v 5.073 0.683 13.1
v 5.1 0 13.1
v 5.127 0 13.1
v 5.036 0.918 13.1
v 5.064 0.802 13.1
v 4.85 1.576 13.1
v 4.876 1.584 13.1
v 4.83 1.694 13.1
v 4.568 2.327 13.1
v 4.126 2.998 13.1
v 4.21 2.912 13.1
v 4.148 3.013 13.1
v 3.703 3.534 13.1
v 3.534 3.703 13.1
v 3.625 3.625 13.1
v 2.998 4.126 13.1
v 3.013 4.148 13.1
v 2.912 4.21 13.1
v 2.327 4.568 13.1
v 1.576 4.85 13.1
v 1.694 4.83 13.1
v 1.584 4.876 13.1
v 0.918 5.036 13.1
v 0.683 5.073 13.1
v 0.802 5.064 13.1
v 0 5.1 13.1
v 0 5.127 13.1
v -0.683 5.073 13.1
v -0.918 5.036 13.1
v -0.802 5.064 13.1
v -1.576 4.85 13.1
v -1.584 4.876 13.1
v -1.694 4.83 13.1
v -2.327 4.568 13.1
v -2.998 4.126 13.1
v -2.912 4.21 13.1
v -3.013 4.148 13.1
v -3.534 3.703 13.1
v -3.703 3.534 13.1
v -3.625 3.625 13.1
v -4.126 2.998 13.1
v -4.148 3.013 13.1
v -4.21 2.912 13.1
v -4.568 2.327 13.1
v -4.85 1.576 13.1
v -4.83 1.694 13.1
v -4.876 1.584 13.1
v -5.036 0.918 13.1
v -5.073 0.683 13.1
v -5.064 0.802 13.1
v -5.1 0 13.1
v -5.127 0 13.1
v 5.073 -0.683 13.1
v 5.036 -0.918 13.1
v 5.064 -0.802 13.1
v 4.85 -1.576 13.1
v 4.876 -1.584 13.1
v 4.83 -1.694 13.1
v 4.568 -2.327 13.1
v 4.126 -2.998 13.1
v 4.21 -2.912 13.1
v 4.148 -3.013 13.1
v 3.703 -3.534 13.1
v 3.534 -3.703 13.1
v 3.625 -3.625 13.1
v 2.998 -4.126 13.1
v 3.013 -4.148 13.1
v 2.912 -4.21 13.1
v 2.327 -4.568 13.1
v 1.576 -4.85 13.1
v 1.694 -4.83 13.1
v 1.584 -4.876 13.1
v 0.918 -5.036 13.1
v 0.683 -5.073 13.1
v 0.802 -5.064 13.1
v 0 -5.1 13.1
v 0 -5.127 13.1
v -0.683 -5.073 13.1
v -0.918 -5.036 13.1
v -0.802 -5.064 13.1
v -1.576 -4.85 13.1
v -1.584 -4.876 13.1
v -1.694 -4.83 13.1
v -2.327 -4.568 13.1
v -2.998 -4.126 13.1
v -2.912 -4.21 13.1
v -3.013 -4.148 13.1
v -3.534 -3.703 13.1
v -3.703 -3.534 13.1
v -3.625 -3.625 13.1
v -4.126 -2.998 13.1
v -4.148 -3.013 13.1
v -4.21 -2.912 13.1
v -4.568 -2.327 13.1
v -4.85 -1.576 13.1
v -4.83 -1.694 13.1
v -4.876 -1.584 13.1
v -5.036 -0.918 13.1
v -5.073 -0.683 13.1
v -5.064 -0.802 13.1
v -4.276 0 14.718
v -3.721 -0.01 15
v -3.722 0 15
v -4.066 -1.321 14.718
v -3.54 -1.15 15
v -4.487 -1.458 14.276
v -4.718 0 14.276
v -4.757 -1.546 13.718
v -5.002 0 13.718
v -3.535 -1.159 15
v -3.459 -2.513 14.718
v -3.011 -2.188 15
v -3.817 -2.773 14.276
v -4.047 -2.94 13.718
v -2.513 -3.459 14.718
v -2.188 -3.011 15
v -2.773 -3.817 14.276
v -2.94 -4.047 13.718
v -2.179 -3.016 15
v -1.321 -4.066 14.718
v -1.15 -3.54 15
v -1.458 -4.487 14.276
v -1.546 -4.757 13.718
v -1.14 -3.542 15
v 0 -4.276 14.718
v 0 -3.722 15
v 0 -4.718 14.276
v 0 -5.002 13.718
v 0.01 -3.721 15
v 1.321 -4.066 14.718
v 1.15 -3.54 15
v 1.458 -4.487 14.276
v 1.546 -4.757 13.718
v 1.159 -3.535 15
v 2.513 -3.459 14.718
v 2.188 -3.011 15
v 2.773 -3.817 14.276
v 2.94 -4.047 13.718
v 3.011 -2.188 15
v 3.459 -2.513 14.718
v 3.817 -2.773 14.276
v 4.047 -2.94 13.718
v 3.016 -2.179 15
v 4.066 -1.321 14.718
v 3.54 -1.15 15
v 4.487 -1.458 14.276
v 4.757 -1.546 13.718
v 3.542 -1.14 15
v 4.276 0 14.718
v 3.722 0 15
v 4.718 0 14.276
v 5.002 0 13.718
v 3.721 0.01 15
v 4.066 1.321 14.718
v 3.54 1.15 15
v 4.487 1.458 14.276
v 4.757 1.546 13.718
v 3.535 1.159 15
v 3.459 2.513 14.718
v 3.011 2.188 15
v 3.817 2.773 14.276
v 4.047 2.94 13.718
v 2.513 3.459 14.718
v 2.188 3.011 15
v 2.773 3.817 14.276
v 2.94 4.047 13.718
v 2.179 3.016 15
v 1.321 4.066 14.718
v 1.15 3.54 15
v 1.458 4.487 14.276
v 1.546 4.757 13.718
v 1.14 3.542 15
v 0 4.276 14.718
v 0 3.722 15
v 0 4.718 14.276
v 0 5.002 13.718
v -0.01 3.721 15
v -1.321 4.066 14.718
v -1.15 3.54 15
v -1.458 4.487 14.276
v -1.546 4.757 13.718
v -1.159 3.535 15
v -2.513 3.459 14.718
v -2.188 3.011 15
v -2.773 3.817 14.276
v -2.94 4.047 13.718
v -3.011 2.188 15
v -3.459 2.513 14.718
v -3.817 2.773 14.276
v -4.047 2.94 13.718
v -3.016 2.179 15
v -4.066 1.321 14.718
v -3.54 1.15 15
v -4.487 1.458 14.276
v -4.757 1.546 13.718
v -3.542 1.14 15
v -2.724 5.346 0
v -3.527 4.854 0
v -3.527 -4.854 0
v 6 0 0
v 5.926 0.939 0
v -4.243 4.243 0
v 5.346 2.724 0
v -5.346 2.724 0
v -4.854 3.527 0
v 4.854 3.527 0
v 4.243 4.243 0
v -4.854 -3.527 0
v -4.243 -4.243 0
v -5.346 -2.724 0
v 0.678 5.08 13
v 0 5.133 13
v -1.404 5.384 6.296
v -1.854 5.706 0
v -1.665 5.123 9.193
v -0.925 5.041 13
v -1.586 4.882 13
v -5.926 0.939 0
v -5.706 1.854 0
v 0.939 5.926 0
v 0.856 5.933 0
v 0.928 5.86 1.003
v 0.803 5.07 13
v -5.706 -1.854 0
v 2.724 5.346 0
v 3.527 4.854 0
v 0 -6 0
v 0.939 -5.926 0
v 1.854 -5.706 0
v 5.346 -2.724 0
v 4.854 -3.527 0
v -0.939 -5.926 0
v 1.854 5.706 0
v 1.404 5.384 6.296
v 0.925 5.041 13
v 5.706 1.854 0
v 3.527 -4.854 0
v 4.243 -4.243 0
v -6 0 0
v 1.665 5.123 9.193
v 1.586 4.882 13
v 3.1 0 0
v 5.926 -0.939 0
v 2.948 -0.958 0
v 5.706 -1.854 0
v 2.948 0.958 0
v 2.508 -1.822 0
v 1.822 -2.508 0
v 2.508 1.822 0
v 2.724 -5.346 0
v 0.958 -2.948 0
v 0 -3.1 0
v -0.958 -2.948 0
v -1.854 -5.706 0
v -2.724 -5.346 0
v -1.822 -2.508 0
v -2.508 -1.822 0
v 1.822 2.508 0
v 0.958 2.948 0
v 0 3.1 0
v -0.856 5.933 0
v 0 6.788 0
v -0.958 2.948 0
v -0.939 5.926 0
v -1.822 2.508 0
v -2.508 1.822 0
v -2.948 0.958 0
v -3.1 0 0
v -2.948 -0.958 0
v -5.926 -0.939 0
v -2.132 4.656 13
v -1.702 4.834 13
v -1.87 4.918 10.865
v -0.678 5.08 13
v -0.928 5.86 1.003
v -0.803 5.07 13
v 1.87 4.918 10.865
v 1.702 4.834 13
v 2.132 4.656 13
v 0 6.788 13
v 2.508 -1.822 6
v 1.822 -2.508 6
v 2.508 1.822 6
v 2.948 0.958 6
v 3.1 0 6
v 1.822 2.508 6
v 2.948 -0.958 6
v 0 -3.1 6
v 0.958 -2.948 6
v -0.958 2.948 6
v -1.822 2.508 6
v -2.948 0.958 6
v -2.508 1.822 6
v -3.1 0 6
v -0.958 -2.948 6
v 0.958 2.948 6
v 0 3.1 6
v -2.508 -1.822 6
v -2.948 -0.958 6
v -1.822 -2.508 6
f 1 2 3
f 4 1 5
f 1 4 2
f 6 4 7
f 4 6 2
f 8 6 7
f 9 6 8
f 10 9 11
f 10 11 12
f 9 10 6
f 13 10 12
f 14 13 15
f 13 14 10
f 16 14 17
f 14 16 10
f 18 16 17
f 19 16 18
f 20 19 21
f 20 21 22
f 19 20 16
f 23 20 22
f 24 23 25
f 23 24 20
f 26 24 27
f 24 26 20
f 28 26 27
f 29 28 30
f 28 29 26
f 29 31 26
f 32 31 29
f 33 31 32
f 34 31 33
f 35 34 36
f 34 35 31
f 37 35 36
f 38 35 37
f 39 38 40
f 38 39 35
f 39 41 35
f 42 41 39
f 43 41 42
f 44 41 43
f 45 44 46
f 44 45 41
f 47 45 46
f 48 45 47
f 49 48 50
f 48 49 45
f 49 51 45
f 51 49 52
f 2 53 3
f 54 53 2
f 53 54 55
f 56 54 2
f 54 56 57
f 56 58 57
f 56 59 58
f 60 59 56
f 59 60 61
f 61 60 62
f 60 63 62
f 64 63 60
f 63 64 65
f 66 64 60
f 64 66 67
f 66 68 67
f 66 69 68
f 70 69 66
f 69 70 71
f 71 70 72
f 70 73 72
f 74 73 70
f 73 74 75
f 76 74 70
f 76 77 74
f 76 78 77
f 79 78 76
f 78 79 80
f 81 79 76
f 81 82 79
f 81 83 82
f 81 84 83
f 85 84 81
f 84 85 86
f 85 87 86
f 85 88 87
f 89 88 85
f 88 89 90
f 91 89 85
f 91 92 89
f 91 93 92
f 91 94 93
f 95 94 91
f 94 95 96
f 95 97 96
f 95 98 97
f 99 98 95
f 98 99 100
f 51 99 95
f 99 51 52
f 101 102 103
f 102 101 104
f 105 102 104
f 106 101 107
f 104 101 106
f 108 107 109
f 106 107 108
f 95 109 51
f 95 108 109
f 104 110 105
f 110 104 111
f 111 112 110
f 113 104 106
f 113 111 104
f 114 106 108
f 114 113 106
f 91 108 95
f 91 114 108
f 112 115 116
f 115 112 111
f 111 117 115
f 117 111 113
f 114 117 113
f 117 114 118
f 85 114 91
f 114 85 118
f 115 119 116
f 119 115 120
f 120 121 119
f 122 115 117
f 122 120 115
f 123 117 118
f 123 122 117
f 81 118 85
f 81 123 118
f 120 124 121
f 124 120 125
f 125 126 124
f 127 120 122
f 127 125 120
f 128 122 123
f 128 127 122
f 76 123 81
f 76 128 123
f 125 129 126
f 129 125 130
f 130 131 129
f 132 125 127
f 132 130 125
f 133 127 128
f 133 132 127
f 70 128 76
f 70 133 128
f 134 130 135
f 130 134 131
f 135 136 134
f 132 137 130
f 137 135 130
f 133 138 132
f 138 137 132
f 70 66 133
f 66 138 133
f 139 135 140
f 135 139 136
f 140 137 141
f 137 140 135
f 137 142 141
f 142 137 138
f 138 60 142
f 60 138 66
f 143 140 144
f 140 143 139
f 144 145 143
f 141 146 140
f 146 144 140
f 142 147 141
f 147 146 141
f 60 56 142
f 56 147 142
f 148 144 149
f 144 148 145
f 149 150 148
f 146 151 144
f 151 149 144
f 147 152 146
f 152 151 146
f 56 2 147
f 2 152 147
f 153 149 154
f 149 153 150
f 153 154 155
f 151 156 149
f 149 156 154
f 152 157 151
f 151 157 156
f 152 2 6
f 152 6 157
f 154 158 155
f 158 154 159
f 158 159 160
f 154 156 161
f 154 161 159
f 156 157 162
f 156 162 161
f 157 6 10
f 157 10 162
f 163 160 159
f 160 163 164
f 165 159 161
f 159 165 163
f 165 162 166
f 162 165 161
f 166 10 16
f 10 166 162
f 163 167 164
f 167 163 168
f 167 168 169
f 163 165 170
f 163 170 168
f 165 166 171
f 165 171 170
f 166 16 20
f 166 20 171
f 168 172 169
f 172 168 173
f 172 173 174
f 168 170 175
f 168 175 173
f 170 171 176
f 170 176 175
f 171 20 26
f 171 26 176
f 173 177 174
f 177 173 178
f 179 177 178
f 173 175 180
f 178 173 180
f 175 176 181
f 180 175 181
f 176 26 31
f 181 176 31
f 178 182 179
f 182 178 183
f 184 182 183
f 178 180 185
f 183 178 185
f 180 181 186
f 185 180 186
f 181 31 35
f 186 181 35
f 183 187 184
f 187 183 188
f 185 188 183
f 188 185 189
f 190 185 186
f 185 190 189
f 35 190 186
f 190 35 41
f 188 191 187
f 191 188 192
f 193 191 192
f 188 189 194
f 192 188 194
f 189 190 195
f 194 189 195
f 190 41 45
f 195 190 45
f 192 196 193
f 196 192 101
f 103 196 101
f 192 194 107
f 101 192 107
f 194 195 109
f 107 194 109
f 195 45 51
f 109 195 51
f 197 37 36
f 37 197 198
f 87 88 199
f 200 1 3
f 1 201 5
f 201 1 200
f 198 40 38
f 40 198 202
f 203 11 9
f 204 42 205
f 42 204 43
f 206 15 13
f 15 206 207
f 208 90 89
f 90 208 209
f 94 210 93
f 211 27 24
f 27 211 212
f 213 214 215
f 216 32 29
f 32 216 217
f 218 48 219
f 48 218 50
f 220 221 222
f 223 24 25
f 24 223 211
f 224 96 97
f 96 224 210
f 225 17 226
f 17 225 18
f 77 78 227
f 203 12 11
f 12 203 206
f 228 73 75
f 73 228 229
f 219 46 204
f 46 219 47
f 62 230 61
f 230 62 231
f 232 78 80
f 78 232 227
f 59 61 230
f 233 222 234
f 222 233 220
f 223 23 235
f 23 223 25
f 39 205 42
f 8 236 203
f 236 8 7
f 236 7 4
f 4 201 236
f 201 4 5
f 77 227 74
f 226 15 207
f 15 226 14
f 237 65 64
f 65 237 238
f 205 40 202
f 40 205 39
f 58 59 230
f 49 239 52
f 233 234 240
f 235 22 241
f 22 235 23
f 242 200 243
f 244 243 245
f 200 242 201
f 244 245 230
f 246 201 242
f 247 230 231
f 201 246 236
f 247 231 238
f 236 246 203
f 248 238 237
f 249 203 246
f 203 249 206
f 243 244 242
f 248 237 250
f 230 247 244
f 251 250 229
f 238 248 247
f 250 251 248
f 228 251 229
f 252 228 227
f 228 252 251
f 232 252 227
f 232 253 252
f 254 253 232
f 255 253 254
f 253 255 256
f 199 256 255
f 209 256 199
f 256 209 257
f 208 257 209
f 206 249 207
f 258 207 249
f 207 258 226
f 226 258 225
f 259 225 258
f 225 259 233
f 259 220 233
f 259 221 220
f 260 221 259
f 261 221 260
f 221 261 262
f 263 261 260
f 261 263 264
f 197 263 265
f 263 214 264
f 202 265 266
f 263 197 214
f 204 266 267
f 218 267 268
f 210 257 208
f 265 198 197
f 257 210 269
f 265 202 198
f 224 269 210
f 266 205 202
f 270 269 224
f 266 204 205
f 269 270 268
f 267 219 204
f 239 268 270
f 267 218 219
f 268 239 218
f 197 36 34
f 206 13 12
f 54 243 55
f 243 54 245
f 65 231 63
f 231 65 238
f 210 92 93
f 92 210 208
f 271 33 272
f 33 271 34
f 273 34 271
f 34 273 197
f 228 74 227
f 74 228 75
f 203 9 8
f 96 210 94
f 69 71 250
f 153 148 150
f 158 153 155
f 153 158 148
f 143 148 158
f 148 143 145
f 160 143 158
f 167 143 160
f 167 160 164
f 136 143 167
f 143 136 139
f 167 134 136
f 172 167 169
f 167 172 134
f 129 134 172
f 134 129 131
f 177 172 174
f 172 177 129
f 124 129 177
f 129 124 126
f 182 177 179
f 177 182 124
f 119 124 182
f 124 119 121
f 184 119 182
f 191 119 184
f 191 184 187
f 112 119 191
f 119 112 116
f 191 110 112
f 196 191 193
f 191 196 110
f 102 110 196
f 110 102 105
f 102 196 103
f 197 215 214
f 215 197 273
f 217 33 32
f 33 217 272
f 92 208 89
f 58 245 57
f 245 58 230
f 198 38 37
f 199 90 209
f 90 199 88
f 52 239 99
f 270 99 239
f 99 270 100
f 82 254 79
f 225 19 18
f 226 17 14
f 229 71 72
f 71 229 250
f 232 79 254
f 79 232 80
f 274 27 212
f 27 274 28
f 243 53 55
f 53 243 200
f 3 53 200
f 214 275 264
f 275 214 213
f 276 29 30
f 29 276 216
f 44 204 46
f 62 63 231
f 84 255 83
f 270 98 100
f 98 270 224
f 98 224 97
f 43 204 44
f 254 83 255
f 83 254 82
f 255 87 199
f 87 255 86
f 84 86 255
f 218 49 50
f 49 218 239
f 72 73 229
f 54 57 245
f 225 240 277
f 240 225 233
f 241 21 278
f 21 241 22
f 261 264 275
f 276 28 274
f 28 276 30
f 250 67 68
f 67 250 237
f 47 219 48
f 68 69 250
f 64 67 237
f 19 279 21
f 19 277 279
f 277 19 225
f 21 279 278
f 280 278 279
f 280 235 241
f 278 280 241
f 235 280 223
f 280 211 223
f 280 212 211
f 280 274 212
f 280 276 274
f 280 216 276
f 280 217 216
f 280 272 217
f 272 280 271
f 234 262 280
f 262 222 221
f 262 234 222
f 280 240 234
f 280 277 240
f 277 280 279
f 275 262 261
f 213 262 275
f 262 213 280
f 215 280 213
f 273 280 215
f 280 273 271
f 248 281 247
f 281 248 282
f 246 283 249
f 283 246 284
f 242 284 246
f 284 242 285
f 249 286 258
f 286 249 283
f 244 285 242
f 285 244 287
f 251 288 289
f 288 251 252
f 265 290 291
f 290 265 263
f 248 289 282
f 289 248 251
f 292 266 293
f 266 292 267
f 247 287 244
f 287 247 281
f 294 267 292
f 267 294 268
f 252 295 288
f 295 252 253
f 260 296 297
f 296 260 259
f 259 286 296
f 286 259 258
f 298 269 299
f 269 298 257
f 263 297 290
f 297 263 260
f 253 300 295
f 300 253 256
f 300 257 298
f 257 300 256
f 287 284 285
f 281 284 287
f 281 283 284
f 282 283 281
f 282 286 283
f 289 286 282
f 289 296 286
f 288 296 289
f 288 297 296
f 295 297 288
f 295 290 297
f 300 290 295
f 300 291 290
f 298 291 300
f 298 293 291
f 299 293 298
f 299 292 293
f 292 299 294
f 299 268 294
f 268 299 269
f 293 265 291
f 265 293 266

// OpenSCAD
/*

Parametric Potentiometer Knob Generator
version 1.1
2012 Steve Cooley
http://sc-fa.com
http://beatseqr.com
http://hapticsynapses.com

parametric potentiometer knob generator by steve cooley is licensed under a Creative Commons Attribution-NonCommercial-ShareAlike 3.0 Unported License. Based on a work at sc-fa.com. Permissions beyond the scope of this license may be available at http://sc-fa.com/blog/contact.

view terms of the license here:
http://creativecommons.org/licenses/by-nc-sa/3.0/


version history
---------------
1.1 2012-04-12 fixed the arrow indicator code to be more robust and easier to adjust parameters for.
1.0 2012-03-?? initial release.


*/


//
//
// Physical attributes, basic
//
//

knob_radius_top = 5;
knob_radius_bottom = 6;
knob_height = 15;
knob_smoothness = 40;

shaft_radius = 3.1;
shaft_height = 7;
shaft_smoothness = 20;

shaft_is_flatted = false;
flat_size_adjustment = -0.0;
// you won't need to mess with this. less than 5 makes it disappear. you can, however,
// set the adjustment to be a negative decimal if you need a flat but not as big as the default.
// go positive if you need a bigger flat
flat_size = 5 + flat_size_adjustment;

// some potentiometers need to have their knobs affixed with a set screw.
set_screw = false;
set_screw_radius = 1.5;
set_screw_depth = 9;
set_screw_height = 4;
quality_of_set_screw = 20;

//
//
// Decorations
//
//

//
// top edge smoothing
// thanks to http://www.iheartrobotics.com/ for the articles!
//

smoothing = true;
smoothing_radius = 2;				// tweak on this one, how much smoothing to apply
smooth = 20;						// tweak on this one, Number of facets of rounding cylinder

ct = -0.1; 							// circle translate? not sure.
circle_radius = knob_radius_top;  	// just match the top edge radius
circle_height = 1; 					// actually.. I don't know what this does.
pad = 0.2;							// Padding to maintain manifold


//
// directional indicators
//

// this is a corner edge of a cube sticking out of the cylinder at the bottom
// you can use it instead of the arrow shaped cutout in the top if you like. Or both.

pointy_external_indicator = true;
pointy_external_indicator_height = 13;
pointy_external_indicator_pokey_outey_ness = 0.0; //
pokey_outey_value = pointy_external_indicator_pokey_outey_ness - 1 - pad;
pokey_outey = [pokey_outey_value, pokey_outey_value,0];

// there's an arrow shaped hole you can have. There aren't a lot of controls for this.
// please feel free to improve on this script here.

arrow_indicator = false;
arrow_indicator_scale = 0.4;
arrow_indicator_translate = [0,1,16];
arrow_scale_head = 2;
arrow_scale_shaft = 1.5;

//
// indentations
//

// for spherical indentations, set the quantity, quality, size, and adjust the placement
indentations_sphere = false;
sphere_number_of_indentations = 12;
sphere_quality_of_indentations = 4;
size_of_sphere_indentations = 4;
// the first number in this set moves the spheres in or out. smaller is closer to the middle
// the second number in this set moves the spheres left or right
// the third number in this set moves the speheres up or down
translation_of_sphere_indentations = [10,0,15];
// in case you are using an odd number of indentations, you way want to adjust the starting angle
// so that they align to the front or set screw locations.
sphere_starting_rotation = 90;

// for cylinder indentations, set quantity, quality, radius, height, and placement
indentations_cylinder = false;
cylinder_number_of_indentations = 10;
cylinder_quality_of_indentations = 50;
radius_of_cylinder_indentations_top = 3;
radius_of_cylinder_indentations_bottom = 5;
height_of_cylinder_indentations = 12;
translation_of_cylinder_indentations = [0,8,-8];
cylinder_starting_rotation = -33.3;

// these are some setup variables... you probably won't need to mess with them.
negative_knob_radius = knob_radius_bottom*-1;


// this is the main module. It calls the submodules.
make_the_knob();

module make_the_knob()
{
	difference()
		{
		difference()
			{

			difference()
				{
				difference()
					{

					union()
						{

						difference()
							{
							// main cylinder
							cylinder(r1=knob_radius_bottom,r2=knob_radius_top,h=knob_height, $fn=knob_smoothness);

							smoothing();

							}

						external_direction_indicator();
						}

					shaft_hole();
					}

				set_screw_hole();
				}

			arrow_indicator();
			indentations();
		}
	}

}

module smoothing() {

// smoothing the top
				if(smoothing == true)
					{
						translate([0,0,knob_height])
						rotate([180,0,0])
						difference() {
							rotate_extrude(convexity=10,  $fn = smooth)
							translate([circle_radius-ct-smoothing_radius+pad,ct-pad,0])
							square(smoothing_radius+pad,smoothing_radius+pad);

							rotate_extrude(convexity=10,  $fn = smooth)
							translate([circle_radius-ct-smoothing_radius,ct+smoothing_radius,0])
							circle(r=smoothing_radius,$fn=smooth);
							}
					}
}

module external_direction_indicator() {

				if(pointy_external_indicator == true)
						{


						// outer pointy indicator
						rotate([0,0,45])
						translate(pokey_outey)
						// cube size of 8 minimum to point out
						cube(size=[knob_radius_bottom,knob_radius_bottom,pointy_external_indicator_height],center=false);
						}

}

module shaft_hole() {
				// shaft hole
				difference()
					{

					// round shaft hole
					translate([ 0, 0, -1 ])
					cylinder(r=shaft_radius,h=shaft_height, $fn=shaft_smoothness);

					if(shaft_is_flatted == true)
						{
						// D shaft shape for shaft cutout
						rotate( [0,0,90])
						translate([-7.5,-5,0])
						cube(size=[flat_size,10,13],center=false);
						}
					}
}


module set_screw_hole() {

			if(set_screw == true)
				{
				// set screw hole
				rotate ([90,0,0])
				translate([ 0, set_screw_height, 1 ])
				cylinder(r=set_screw_radius,h=set_screw_depth, $fn=quality_of_set_screw);
				}
}

module arrow_indicator() {
		if(arrow_indicator == true)
			{
			translate(arrow_indicator_translate)
			// begin arrow top cutout
			// translate([(knob_radius/2),knob_height,knob_height])
			rotate([90,0,45])
			scale([arrow_indicator_scale*.3,arrow_indicator_scale*.3,arrow_indicator_scale*.3])
			union()
				{
				rotate([90,45,0])
				scale([arrow_scale_head,arrow_scale_head,1])
				cylinder(r=8, h=10, $fn=3, center=true);
				rotate([90,45,0])
				translate([-10,0,0])
				scale([arrow_scale_shaft,arrow_scale_shaft,1])
				cube(size=[15,10,10],center=true);
				}
			}
}

module indentations() {

if(indentations_sphere == true)
			{
			for (z = [0:sphere_number_of_indentations])
				{
				rotate([0,0,sphere_starting_rotation+((360/sphere_number_of_indentations)*z)])
				translate(translation_of_sphere_indentations)
				sphere(size_of_sphere_indentations, $fn=sphere_quality_of_indentations);
				}
			}
if(indentations_cylinder == true)
			{
			for (z = [0:cylinder_number_of_indentations])
				{
				rotate([0,0,cylinder_starting_rotation+((360/cylinder_number_of_indentations)*z)])

				translate([negative_knob_radius,0,knob_height])
				translate(translation_of_cylinder_indentations)
				cylinder(r1=radius_of_cylinder_indentations_bottom, r2=radius_of_cylinder_indentations_top, h=height_of_cylinder_indentations, center=true, $fn=cylinder_quality_of_indentations);
				}
			}
		}
